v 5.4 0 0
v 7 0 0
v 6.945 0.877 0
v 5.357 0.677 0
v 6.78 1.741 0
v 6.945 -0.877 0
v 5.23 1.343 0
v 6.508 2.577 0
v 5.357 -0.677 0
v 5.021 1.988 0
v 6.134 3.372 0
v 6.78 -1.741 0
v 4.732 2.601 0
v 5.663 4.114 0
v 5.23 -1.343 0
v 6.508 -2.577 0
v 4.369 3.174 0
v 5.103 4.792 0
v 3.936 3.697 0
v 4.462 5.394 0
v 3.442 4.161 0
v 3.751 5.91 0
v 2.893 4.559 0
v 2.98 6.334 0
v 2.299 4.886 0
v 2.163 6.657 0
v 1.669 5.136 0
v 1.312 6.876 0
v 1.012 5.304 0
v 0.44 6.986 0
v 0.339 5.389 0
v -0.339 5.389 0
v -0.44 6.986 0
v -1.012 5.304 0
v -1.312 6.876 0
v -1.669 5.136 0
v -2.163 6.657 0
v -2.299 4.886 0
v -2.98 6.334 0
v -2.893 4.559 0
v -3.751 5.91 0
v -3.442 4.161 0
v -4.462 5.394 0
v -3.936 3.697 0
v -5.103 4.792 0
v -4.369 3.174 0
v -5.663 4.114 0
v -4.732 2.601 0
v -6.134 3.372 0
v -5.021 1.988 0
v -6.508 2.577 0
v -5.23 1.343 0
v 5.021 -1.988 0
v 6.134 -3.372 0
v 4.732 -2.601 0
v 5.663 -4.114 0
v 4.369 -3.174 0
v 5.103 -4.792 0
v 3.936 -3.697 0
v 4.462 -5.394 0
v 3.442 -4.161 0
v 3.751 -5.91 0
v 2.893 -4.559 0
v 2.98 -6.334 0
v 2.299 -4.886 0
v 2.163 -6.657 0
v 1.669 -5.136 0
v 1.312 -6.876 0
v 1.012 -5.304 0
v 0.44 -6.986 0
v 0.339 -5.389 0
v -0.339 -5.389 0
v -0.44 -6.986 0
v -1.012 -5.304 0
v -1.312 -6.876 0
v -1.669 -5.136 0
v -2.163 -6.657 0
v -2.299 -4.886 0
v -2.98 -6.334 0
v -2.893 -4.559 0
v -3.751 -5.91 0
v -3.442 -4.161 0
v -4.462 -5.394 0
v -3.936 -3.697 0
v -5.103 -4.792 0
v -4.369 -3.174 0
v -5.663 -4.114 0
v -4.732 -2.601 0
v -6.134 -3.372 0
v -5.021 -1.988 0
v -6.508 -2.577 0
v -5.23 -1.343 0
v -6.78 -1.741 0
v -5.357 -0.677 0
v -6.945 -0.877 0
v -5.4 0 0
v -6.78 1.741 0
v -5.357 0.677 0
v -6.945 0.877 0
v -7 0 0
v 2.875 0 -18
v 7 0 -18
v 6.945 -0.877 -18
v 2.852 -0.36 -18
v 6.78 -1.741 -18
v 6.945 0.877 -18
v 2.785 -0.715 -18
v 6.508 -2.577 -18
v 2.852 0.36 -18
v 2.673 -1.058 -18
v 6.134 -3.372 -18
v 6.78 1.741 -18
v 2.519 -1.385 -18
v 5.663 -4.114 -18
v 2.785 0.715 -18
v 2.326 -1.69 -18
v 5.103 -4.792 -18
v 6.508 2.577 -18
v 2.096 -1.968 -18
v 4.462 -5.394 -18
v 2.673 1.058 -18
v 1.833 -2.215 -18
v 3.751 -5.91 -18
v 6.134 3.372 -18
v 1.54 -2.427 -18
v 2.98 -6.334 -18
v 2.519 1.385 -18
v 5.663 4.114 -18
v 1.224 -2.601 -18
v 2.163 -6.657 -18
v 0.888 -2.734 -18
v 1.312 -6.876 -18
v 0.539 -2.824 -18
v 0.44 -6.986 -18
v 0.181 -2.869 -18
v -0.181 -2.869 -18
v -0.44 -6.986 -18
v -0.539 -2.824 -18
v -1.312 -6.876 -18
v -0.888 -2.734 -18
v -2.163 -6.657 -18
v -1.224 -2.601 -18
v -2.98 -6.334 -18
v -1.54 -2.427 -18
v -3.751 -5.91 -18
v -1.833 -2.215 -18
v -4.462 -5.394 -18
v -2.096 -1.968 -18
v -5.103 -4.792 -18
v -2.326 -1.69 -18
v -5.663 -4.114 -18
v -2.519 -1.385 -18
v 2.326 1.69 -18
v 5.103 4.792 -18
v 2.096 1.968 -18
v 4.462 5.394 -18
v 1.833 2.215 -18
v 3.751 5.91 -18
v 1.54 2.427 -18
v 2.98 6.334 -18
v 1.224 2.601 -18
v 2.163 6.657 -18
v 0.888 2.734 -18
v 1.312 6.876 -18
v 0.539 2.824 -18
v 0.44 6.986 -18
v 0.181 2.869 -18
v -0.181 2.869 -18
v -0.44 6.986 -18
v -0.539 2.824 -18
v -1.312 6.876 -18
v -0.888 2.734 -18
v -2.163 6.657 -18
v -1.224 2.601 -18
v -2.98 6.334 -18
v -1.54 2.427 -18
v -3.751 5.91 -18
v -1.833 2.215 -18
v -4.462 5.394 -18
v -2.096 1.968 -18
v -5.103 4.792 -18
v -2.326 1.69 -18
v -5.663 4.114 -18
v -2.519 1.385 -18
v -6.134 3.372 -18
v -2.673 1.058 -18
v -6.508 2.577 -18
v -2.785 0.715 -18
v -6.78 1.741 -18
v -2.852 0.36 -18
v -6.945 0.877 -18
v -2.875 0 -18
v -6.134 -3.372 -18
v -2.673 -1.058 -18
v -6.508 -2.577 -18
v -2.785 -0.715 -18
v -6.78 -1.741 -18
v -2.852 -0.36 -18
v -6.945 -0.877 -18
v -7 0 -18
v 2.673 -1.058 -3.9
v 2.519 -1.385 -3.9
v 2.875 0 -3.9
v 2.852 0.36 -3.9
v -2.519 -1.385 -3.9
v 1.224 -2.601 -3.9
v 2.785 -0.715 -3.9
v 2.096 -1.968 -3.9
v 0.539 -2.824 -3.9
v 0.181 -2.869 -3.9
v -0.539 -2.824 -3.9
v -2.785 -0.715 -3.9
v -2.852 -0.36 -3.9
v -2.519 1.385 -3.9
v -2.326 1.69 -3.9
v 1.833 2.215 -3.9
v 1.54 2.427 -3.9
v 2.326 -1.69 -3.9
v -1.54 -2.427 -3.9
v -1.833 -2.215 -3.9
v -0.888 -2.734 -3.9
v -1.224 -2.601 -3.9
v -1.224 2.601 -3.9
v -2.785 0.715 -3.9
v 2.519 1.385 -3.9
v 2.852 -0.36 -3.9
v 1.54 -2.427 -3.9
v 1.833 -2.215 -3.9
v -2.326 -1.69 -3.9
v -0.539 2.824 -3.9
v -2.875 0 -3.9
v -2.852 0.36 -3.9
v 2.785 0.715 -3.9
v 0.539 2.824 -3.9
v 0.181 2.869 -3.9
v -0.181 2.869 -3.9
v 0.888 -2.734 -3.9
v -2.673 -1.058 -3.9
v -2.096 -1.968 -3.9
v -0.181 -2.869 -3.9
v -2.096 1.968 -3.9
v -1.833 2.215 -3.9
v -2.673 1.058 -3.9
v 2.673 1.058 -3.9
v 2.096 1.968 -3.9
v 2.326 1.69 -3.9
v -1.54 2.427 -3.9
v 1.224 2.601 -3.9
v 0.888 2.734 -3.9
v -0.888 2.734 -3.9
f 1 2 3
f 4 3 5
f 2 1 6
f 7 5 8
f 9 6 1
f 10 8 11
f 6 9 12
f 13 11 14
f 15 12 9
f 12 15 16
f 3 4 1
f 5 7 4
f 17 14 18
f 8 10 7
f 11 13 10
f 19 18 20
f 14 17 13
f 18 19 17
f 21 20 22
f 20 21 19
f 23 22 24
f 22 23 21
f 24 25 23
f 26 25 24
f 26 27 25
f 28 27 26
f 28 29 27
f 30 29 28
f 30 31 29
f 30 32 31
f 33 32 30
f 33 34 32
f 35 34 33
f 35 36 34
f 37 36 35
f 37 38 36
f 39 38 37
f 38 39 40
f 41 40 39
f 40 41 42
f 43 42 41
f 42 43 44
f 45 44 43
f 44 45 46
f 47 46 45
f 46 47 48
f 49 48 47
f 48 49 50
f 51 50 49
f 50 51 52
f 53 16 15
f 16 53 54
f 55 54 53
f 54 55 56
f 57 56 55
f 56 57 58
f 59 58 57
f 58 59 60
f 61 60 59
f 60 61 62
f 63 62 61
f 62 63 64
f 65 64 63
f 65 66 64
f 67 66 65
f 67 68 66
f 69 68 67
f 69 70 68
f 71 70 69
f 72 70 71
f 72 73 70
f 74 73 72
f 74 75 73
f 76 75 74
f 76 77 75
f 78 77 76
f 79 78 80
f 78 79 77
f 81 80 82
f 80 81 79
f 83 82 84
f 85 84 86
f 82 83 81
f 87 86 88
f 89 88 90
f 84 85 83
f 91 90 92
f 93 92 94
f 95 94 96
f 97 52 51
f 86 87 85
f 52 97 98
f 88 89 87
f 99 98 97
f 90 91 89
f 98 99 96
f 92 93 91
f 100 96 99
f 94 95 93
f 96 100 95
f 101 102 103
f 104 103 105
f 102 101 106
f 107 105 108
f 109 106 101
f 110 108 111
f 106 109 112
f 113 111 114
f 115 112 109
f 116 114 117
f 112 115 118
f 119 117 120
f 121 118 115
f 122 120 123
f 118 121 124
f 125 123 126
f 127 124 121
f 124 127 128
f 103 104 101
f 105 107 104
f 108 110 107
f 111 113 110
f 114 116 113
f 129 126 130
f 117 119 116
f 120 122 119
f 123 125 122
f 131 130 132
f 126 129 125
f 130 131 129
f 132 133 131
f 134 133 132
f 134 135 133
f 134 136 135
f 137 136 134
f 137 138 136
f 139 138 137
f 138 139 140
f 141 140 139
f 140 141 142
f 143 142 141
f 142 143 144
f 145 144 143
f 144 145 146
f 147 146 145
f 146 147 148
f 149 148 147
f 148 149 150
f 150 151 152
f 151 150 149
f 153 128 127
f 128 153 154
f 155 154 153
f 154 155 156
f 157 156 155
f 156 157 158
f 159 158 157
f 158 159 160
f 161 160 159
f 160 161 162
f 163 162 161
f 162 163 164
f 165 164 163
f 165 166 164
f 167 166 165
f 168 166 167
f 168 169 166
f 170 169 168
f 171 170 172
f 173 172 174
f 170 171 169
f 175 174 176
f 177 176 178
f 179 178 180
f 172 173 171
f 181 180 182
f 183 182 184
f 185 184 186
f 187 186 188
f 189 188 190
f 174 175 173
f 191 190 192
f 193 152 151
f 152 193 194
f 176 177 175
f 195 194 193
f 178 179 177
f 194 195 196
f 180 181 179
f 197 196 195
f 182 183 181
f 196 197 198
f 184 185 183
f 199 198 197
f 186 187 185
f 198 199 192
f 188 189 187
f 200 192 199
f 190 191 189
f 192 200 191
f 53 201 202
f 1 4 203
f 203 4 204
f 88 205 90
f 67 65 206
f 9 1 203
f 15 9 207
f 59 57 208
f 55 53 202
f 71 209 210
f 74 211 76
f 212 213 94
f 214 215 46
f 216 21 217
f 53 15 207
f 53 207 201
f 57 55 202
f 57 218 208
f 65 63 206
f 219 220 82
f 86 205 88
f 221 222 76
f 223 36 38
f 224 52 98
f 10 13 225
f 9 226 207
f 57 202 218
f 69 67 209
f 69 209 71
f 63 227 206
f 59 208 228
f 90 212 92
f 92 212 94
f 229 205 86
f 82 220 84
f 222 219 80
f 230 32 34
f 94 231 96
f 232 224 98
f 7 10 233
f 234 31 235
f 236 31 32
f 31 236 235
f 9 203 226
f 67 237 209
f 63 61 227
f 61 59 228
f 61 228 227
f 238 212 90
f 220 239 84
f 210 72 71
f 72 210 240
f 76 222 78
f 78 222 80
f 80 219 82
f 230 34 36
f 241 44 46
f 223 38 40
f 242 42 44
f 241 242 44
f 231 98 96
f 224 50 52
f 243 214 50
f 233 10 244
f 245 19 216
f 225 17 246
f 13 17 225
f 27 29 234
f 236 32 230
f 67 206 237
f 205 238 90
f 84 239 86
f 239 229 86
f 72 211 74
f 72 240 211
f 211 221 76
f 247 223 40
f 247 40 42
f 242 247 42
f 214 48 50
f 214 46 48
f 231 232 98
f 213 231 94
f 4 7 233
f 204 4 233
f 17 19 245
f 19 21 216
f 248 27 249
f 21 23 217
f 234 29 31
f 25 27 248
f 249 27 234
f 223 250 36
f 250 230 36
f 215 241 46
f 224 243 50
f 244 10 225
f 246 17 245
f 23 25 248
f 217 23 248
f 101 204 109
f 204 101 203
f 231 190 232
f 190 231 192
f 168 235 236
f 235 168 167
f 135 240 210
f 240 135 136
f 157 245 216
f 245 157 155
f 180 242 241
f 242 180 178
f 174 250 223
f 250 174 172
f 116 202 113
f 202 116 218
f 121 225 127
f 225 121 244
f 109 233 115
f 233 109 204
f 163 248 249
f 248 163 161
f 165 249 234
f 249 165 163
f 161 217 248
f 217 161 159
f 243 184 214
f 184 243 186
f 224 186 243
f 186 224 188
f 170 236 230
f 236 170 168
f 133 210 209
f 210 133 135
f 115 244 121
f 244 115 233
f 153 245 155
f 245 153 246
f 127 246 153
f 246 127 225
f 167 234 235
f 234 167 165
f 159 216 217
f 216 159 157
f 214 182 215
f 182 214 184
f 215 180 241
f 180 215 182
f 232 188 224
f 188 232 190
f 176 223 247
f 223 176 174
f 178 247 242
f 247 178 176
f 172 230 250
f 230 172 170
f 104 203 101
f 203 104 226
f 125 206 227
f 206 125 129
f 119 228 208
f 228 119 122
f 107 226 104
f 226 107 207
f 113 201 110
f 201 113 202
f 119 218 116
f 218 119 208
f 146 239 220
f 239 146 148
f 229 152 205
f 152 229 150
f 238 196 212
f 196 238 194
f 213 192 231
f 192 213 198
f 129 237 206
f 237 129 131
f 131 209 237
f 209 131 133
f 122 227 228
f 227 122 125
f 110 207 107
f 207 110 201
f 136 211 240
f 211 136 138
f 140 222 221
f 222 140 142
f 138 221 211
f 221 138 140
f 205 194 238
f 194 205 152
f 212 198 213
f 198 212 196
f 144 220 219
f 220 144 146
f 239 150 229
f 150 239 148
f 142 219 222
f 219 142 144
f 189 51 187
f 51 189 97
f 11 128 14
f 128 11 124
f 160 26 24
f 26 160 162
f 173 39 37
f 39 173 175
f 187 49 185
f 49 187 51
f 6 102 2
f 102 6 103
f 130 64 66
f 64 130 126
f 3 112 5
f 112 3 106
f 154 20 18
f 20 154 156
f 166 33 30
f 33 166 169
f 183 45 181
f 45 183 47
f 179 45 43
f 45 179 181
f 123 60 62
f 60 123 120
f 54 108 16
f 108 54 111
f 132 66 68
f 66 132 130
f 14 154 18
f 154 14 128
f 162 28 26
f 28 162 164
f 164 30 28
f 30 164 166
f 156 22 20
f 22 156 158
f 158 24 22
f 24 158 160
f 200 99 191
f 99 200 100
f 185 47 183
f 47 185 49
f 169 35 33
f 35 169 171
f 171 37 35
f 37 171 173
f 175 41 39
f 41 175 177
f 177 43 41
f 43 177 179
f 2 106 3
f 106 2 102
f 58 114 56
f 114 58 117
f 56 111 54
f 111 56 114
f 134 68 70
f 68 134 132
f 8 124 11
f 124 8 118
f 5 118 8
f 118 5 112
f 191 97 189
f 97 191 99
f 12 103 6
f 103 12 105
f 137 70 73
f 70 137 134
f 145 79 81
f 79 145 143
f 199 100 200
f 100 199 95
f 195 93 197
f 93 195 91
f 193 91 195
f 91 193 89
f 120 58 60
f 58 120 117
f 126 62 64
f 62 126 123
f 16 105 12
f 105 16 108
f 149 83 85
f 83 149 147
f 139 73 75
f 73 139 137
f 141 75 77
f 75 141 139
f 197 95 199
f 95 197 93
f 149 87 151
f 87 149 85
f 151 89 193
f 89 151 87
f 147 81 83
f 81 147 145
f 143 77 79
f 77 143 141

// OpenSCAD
$fn = 50;


difference() {
	union() {
		translate(v = [0, 0, -18.0000000000]) {
			cylinder(h = 18, r = 7.0000000000);
		}
		cylinder(h = 0, r = 16.0000000000);
	}
	union() {
		translate(v = [0, 0, 0]) {
			rotate(a = [0, 0, 0]) {
				difference() {
					union() {
						#translate(v = [0, 0, -18.0000000000]) {
							cylinder(h = 18, r = 2.6000000000);
						}
						#translate(v = [0, 0, -3.9000000000]) {
							cylinder(h = 3.9000000000, r1 = 2.8750000000, r2 = 5.4000000000);
						}
						#translate(v = [0, 0, -18.0000000000]) {
							cylinder(h = 18, r = 2.8750000000);
						}
						#translate(v = [0, 0, -18.0000000000]) {
							cylinder(h = 18, r = 2.6000000000);
						}
					}
					union();
				}
			}
		}
	}
}
